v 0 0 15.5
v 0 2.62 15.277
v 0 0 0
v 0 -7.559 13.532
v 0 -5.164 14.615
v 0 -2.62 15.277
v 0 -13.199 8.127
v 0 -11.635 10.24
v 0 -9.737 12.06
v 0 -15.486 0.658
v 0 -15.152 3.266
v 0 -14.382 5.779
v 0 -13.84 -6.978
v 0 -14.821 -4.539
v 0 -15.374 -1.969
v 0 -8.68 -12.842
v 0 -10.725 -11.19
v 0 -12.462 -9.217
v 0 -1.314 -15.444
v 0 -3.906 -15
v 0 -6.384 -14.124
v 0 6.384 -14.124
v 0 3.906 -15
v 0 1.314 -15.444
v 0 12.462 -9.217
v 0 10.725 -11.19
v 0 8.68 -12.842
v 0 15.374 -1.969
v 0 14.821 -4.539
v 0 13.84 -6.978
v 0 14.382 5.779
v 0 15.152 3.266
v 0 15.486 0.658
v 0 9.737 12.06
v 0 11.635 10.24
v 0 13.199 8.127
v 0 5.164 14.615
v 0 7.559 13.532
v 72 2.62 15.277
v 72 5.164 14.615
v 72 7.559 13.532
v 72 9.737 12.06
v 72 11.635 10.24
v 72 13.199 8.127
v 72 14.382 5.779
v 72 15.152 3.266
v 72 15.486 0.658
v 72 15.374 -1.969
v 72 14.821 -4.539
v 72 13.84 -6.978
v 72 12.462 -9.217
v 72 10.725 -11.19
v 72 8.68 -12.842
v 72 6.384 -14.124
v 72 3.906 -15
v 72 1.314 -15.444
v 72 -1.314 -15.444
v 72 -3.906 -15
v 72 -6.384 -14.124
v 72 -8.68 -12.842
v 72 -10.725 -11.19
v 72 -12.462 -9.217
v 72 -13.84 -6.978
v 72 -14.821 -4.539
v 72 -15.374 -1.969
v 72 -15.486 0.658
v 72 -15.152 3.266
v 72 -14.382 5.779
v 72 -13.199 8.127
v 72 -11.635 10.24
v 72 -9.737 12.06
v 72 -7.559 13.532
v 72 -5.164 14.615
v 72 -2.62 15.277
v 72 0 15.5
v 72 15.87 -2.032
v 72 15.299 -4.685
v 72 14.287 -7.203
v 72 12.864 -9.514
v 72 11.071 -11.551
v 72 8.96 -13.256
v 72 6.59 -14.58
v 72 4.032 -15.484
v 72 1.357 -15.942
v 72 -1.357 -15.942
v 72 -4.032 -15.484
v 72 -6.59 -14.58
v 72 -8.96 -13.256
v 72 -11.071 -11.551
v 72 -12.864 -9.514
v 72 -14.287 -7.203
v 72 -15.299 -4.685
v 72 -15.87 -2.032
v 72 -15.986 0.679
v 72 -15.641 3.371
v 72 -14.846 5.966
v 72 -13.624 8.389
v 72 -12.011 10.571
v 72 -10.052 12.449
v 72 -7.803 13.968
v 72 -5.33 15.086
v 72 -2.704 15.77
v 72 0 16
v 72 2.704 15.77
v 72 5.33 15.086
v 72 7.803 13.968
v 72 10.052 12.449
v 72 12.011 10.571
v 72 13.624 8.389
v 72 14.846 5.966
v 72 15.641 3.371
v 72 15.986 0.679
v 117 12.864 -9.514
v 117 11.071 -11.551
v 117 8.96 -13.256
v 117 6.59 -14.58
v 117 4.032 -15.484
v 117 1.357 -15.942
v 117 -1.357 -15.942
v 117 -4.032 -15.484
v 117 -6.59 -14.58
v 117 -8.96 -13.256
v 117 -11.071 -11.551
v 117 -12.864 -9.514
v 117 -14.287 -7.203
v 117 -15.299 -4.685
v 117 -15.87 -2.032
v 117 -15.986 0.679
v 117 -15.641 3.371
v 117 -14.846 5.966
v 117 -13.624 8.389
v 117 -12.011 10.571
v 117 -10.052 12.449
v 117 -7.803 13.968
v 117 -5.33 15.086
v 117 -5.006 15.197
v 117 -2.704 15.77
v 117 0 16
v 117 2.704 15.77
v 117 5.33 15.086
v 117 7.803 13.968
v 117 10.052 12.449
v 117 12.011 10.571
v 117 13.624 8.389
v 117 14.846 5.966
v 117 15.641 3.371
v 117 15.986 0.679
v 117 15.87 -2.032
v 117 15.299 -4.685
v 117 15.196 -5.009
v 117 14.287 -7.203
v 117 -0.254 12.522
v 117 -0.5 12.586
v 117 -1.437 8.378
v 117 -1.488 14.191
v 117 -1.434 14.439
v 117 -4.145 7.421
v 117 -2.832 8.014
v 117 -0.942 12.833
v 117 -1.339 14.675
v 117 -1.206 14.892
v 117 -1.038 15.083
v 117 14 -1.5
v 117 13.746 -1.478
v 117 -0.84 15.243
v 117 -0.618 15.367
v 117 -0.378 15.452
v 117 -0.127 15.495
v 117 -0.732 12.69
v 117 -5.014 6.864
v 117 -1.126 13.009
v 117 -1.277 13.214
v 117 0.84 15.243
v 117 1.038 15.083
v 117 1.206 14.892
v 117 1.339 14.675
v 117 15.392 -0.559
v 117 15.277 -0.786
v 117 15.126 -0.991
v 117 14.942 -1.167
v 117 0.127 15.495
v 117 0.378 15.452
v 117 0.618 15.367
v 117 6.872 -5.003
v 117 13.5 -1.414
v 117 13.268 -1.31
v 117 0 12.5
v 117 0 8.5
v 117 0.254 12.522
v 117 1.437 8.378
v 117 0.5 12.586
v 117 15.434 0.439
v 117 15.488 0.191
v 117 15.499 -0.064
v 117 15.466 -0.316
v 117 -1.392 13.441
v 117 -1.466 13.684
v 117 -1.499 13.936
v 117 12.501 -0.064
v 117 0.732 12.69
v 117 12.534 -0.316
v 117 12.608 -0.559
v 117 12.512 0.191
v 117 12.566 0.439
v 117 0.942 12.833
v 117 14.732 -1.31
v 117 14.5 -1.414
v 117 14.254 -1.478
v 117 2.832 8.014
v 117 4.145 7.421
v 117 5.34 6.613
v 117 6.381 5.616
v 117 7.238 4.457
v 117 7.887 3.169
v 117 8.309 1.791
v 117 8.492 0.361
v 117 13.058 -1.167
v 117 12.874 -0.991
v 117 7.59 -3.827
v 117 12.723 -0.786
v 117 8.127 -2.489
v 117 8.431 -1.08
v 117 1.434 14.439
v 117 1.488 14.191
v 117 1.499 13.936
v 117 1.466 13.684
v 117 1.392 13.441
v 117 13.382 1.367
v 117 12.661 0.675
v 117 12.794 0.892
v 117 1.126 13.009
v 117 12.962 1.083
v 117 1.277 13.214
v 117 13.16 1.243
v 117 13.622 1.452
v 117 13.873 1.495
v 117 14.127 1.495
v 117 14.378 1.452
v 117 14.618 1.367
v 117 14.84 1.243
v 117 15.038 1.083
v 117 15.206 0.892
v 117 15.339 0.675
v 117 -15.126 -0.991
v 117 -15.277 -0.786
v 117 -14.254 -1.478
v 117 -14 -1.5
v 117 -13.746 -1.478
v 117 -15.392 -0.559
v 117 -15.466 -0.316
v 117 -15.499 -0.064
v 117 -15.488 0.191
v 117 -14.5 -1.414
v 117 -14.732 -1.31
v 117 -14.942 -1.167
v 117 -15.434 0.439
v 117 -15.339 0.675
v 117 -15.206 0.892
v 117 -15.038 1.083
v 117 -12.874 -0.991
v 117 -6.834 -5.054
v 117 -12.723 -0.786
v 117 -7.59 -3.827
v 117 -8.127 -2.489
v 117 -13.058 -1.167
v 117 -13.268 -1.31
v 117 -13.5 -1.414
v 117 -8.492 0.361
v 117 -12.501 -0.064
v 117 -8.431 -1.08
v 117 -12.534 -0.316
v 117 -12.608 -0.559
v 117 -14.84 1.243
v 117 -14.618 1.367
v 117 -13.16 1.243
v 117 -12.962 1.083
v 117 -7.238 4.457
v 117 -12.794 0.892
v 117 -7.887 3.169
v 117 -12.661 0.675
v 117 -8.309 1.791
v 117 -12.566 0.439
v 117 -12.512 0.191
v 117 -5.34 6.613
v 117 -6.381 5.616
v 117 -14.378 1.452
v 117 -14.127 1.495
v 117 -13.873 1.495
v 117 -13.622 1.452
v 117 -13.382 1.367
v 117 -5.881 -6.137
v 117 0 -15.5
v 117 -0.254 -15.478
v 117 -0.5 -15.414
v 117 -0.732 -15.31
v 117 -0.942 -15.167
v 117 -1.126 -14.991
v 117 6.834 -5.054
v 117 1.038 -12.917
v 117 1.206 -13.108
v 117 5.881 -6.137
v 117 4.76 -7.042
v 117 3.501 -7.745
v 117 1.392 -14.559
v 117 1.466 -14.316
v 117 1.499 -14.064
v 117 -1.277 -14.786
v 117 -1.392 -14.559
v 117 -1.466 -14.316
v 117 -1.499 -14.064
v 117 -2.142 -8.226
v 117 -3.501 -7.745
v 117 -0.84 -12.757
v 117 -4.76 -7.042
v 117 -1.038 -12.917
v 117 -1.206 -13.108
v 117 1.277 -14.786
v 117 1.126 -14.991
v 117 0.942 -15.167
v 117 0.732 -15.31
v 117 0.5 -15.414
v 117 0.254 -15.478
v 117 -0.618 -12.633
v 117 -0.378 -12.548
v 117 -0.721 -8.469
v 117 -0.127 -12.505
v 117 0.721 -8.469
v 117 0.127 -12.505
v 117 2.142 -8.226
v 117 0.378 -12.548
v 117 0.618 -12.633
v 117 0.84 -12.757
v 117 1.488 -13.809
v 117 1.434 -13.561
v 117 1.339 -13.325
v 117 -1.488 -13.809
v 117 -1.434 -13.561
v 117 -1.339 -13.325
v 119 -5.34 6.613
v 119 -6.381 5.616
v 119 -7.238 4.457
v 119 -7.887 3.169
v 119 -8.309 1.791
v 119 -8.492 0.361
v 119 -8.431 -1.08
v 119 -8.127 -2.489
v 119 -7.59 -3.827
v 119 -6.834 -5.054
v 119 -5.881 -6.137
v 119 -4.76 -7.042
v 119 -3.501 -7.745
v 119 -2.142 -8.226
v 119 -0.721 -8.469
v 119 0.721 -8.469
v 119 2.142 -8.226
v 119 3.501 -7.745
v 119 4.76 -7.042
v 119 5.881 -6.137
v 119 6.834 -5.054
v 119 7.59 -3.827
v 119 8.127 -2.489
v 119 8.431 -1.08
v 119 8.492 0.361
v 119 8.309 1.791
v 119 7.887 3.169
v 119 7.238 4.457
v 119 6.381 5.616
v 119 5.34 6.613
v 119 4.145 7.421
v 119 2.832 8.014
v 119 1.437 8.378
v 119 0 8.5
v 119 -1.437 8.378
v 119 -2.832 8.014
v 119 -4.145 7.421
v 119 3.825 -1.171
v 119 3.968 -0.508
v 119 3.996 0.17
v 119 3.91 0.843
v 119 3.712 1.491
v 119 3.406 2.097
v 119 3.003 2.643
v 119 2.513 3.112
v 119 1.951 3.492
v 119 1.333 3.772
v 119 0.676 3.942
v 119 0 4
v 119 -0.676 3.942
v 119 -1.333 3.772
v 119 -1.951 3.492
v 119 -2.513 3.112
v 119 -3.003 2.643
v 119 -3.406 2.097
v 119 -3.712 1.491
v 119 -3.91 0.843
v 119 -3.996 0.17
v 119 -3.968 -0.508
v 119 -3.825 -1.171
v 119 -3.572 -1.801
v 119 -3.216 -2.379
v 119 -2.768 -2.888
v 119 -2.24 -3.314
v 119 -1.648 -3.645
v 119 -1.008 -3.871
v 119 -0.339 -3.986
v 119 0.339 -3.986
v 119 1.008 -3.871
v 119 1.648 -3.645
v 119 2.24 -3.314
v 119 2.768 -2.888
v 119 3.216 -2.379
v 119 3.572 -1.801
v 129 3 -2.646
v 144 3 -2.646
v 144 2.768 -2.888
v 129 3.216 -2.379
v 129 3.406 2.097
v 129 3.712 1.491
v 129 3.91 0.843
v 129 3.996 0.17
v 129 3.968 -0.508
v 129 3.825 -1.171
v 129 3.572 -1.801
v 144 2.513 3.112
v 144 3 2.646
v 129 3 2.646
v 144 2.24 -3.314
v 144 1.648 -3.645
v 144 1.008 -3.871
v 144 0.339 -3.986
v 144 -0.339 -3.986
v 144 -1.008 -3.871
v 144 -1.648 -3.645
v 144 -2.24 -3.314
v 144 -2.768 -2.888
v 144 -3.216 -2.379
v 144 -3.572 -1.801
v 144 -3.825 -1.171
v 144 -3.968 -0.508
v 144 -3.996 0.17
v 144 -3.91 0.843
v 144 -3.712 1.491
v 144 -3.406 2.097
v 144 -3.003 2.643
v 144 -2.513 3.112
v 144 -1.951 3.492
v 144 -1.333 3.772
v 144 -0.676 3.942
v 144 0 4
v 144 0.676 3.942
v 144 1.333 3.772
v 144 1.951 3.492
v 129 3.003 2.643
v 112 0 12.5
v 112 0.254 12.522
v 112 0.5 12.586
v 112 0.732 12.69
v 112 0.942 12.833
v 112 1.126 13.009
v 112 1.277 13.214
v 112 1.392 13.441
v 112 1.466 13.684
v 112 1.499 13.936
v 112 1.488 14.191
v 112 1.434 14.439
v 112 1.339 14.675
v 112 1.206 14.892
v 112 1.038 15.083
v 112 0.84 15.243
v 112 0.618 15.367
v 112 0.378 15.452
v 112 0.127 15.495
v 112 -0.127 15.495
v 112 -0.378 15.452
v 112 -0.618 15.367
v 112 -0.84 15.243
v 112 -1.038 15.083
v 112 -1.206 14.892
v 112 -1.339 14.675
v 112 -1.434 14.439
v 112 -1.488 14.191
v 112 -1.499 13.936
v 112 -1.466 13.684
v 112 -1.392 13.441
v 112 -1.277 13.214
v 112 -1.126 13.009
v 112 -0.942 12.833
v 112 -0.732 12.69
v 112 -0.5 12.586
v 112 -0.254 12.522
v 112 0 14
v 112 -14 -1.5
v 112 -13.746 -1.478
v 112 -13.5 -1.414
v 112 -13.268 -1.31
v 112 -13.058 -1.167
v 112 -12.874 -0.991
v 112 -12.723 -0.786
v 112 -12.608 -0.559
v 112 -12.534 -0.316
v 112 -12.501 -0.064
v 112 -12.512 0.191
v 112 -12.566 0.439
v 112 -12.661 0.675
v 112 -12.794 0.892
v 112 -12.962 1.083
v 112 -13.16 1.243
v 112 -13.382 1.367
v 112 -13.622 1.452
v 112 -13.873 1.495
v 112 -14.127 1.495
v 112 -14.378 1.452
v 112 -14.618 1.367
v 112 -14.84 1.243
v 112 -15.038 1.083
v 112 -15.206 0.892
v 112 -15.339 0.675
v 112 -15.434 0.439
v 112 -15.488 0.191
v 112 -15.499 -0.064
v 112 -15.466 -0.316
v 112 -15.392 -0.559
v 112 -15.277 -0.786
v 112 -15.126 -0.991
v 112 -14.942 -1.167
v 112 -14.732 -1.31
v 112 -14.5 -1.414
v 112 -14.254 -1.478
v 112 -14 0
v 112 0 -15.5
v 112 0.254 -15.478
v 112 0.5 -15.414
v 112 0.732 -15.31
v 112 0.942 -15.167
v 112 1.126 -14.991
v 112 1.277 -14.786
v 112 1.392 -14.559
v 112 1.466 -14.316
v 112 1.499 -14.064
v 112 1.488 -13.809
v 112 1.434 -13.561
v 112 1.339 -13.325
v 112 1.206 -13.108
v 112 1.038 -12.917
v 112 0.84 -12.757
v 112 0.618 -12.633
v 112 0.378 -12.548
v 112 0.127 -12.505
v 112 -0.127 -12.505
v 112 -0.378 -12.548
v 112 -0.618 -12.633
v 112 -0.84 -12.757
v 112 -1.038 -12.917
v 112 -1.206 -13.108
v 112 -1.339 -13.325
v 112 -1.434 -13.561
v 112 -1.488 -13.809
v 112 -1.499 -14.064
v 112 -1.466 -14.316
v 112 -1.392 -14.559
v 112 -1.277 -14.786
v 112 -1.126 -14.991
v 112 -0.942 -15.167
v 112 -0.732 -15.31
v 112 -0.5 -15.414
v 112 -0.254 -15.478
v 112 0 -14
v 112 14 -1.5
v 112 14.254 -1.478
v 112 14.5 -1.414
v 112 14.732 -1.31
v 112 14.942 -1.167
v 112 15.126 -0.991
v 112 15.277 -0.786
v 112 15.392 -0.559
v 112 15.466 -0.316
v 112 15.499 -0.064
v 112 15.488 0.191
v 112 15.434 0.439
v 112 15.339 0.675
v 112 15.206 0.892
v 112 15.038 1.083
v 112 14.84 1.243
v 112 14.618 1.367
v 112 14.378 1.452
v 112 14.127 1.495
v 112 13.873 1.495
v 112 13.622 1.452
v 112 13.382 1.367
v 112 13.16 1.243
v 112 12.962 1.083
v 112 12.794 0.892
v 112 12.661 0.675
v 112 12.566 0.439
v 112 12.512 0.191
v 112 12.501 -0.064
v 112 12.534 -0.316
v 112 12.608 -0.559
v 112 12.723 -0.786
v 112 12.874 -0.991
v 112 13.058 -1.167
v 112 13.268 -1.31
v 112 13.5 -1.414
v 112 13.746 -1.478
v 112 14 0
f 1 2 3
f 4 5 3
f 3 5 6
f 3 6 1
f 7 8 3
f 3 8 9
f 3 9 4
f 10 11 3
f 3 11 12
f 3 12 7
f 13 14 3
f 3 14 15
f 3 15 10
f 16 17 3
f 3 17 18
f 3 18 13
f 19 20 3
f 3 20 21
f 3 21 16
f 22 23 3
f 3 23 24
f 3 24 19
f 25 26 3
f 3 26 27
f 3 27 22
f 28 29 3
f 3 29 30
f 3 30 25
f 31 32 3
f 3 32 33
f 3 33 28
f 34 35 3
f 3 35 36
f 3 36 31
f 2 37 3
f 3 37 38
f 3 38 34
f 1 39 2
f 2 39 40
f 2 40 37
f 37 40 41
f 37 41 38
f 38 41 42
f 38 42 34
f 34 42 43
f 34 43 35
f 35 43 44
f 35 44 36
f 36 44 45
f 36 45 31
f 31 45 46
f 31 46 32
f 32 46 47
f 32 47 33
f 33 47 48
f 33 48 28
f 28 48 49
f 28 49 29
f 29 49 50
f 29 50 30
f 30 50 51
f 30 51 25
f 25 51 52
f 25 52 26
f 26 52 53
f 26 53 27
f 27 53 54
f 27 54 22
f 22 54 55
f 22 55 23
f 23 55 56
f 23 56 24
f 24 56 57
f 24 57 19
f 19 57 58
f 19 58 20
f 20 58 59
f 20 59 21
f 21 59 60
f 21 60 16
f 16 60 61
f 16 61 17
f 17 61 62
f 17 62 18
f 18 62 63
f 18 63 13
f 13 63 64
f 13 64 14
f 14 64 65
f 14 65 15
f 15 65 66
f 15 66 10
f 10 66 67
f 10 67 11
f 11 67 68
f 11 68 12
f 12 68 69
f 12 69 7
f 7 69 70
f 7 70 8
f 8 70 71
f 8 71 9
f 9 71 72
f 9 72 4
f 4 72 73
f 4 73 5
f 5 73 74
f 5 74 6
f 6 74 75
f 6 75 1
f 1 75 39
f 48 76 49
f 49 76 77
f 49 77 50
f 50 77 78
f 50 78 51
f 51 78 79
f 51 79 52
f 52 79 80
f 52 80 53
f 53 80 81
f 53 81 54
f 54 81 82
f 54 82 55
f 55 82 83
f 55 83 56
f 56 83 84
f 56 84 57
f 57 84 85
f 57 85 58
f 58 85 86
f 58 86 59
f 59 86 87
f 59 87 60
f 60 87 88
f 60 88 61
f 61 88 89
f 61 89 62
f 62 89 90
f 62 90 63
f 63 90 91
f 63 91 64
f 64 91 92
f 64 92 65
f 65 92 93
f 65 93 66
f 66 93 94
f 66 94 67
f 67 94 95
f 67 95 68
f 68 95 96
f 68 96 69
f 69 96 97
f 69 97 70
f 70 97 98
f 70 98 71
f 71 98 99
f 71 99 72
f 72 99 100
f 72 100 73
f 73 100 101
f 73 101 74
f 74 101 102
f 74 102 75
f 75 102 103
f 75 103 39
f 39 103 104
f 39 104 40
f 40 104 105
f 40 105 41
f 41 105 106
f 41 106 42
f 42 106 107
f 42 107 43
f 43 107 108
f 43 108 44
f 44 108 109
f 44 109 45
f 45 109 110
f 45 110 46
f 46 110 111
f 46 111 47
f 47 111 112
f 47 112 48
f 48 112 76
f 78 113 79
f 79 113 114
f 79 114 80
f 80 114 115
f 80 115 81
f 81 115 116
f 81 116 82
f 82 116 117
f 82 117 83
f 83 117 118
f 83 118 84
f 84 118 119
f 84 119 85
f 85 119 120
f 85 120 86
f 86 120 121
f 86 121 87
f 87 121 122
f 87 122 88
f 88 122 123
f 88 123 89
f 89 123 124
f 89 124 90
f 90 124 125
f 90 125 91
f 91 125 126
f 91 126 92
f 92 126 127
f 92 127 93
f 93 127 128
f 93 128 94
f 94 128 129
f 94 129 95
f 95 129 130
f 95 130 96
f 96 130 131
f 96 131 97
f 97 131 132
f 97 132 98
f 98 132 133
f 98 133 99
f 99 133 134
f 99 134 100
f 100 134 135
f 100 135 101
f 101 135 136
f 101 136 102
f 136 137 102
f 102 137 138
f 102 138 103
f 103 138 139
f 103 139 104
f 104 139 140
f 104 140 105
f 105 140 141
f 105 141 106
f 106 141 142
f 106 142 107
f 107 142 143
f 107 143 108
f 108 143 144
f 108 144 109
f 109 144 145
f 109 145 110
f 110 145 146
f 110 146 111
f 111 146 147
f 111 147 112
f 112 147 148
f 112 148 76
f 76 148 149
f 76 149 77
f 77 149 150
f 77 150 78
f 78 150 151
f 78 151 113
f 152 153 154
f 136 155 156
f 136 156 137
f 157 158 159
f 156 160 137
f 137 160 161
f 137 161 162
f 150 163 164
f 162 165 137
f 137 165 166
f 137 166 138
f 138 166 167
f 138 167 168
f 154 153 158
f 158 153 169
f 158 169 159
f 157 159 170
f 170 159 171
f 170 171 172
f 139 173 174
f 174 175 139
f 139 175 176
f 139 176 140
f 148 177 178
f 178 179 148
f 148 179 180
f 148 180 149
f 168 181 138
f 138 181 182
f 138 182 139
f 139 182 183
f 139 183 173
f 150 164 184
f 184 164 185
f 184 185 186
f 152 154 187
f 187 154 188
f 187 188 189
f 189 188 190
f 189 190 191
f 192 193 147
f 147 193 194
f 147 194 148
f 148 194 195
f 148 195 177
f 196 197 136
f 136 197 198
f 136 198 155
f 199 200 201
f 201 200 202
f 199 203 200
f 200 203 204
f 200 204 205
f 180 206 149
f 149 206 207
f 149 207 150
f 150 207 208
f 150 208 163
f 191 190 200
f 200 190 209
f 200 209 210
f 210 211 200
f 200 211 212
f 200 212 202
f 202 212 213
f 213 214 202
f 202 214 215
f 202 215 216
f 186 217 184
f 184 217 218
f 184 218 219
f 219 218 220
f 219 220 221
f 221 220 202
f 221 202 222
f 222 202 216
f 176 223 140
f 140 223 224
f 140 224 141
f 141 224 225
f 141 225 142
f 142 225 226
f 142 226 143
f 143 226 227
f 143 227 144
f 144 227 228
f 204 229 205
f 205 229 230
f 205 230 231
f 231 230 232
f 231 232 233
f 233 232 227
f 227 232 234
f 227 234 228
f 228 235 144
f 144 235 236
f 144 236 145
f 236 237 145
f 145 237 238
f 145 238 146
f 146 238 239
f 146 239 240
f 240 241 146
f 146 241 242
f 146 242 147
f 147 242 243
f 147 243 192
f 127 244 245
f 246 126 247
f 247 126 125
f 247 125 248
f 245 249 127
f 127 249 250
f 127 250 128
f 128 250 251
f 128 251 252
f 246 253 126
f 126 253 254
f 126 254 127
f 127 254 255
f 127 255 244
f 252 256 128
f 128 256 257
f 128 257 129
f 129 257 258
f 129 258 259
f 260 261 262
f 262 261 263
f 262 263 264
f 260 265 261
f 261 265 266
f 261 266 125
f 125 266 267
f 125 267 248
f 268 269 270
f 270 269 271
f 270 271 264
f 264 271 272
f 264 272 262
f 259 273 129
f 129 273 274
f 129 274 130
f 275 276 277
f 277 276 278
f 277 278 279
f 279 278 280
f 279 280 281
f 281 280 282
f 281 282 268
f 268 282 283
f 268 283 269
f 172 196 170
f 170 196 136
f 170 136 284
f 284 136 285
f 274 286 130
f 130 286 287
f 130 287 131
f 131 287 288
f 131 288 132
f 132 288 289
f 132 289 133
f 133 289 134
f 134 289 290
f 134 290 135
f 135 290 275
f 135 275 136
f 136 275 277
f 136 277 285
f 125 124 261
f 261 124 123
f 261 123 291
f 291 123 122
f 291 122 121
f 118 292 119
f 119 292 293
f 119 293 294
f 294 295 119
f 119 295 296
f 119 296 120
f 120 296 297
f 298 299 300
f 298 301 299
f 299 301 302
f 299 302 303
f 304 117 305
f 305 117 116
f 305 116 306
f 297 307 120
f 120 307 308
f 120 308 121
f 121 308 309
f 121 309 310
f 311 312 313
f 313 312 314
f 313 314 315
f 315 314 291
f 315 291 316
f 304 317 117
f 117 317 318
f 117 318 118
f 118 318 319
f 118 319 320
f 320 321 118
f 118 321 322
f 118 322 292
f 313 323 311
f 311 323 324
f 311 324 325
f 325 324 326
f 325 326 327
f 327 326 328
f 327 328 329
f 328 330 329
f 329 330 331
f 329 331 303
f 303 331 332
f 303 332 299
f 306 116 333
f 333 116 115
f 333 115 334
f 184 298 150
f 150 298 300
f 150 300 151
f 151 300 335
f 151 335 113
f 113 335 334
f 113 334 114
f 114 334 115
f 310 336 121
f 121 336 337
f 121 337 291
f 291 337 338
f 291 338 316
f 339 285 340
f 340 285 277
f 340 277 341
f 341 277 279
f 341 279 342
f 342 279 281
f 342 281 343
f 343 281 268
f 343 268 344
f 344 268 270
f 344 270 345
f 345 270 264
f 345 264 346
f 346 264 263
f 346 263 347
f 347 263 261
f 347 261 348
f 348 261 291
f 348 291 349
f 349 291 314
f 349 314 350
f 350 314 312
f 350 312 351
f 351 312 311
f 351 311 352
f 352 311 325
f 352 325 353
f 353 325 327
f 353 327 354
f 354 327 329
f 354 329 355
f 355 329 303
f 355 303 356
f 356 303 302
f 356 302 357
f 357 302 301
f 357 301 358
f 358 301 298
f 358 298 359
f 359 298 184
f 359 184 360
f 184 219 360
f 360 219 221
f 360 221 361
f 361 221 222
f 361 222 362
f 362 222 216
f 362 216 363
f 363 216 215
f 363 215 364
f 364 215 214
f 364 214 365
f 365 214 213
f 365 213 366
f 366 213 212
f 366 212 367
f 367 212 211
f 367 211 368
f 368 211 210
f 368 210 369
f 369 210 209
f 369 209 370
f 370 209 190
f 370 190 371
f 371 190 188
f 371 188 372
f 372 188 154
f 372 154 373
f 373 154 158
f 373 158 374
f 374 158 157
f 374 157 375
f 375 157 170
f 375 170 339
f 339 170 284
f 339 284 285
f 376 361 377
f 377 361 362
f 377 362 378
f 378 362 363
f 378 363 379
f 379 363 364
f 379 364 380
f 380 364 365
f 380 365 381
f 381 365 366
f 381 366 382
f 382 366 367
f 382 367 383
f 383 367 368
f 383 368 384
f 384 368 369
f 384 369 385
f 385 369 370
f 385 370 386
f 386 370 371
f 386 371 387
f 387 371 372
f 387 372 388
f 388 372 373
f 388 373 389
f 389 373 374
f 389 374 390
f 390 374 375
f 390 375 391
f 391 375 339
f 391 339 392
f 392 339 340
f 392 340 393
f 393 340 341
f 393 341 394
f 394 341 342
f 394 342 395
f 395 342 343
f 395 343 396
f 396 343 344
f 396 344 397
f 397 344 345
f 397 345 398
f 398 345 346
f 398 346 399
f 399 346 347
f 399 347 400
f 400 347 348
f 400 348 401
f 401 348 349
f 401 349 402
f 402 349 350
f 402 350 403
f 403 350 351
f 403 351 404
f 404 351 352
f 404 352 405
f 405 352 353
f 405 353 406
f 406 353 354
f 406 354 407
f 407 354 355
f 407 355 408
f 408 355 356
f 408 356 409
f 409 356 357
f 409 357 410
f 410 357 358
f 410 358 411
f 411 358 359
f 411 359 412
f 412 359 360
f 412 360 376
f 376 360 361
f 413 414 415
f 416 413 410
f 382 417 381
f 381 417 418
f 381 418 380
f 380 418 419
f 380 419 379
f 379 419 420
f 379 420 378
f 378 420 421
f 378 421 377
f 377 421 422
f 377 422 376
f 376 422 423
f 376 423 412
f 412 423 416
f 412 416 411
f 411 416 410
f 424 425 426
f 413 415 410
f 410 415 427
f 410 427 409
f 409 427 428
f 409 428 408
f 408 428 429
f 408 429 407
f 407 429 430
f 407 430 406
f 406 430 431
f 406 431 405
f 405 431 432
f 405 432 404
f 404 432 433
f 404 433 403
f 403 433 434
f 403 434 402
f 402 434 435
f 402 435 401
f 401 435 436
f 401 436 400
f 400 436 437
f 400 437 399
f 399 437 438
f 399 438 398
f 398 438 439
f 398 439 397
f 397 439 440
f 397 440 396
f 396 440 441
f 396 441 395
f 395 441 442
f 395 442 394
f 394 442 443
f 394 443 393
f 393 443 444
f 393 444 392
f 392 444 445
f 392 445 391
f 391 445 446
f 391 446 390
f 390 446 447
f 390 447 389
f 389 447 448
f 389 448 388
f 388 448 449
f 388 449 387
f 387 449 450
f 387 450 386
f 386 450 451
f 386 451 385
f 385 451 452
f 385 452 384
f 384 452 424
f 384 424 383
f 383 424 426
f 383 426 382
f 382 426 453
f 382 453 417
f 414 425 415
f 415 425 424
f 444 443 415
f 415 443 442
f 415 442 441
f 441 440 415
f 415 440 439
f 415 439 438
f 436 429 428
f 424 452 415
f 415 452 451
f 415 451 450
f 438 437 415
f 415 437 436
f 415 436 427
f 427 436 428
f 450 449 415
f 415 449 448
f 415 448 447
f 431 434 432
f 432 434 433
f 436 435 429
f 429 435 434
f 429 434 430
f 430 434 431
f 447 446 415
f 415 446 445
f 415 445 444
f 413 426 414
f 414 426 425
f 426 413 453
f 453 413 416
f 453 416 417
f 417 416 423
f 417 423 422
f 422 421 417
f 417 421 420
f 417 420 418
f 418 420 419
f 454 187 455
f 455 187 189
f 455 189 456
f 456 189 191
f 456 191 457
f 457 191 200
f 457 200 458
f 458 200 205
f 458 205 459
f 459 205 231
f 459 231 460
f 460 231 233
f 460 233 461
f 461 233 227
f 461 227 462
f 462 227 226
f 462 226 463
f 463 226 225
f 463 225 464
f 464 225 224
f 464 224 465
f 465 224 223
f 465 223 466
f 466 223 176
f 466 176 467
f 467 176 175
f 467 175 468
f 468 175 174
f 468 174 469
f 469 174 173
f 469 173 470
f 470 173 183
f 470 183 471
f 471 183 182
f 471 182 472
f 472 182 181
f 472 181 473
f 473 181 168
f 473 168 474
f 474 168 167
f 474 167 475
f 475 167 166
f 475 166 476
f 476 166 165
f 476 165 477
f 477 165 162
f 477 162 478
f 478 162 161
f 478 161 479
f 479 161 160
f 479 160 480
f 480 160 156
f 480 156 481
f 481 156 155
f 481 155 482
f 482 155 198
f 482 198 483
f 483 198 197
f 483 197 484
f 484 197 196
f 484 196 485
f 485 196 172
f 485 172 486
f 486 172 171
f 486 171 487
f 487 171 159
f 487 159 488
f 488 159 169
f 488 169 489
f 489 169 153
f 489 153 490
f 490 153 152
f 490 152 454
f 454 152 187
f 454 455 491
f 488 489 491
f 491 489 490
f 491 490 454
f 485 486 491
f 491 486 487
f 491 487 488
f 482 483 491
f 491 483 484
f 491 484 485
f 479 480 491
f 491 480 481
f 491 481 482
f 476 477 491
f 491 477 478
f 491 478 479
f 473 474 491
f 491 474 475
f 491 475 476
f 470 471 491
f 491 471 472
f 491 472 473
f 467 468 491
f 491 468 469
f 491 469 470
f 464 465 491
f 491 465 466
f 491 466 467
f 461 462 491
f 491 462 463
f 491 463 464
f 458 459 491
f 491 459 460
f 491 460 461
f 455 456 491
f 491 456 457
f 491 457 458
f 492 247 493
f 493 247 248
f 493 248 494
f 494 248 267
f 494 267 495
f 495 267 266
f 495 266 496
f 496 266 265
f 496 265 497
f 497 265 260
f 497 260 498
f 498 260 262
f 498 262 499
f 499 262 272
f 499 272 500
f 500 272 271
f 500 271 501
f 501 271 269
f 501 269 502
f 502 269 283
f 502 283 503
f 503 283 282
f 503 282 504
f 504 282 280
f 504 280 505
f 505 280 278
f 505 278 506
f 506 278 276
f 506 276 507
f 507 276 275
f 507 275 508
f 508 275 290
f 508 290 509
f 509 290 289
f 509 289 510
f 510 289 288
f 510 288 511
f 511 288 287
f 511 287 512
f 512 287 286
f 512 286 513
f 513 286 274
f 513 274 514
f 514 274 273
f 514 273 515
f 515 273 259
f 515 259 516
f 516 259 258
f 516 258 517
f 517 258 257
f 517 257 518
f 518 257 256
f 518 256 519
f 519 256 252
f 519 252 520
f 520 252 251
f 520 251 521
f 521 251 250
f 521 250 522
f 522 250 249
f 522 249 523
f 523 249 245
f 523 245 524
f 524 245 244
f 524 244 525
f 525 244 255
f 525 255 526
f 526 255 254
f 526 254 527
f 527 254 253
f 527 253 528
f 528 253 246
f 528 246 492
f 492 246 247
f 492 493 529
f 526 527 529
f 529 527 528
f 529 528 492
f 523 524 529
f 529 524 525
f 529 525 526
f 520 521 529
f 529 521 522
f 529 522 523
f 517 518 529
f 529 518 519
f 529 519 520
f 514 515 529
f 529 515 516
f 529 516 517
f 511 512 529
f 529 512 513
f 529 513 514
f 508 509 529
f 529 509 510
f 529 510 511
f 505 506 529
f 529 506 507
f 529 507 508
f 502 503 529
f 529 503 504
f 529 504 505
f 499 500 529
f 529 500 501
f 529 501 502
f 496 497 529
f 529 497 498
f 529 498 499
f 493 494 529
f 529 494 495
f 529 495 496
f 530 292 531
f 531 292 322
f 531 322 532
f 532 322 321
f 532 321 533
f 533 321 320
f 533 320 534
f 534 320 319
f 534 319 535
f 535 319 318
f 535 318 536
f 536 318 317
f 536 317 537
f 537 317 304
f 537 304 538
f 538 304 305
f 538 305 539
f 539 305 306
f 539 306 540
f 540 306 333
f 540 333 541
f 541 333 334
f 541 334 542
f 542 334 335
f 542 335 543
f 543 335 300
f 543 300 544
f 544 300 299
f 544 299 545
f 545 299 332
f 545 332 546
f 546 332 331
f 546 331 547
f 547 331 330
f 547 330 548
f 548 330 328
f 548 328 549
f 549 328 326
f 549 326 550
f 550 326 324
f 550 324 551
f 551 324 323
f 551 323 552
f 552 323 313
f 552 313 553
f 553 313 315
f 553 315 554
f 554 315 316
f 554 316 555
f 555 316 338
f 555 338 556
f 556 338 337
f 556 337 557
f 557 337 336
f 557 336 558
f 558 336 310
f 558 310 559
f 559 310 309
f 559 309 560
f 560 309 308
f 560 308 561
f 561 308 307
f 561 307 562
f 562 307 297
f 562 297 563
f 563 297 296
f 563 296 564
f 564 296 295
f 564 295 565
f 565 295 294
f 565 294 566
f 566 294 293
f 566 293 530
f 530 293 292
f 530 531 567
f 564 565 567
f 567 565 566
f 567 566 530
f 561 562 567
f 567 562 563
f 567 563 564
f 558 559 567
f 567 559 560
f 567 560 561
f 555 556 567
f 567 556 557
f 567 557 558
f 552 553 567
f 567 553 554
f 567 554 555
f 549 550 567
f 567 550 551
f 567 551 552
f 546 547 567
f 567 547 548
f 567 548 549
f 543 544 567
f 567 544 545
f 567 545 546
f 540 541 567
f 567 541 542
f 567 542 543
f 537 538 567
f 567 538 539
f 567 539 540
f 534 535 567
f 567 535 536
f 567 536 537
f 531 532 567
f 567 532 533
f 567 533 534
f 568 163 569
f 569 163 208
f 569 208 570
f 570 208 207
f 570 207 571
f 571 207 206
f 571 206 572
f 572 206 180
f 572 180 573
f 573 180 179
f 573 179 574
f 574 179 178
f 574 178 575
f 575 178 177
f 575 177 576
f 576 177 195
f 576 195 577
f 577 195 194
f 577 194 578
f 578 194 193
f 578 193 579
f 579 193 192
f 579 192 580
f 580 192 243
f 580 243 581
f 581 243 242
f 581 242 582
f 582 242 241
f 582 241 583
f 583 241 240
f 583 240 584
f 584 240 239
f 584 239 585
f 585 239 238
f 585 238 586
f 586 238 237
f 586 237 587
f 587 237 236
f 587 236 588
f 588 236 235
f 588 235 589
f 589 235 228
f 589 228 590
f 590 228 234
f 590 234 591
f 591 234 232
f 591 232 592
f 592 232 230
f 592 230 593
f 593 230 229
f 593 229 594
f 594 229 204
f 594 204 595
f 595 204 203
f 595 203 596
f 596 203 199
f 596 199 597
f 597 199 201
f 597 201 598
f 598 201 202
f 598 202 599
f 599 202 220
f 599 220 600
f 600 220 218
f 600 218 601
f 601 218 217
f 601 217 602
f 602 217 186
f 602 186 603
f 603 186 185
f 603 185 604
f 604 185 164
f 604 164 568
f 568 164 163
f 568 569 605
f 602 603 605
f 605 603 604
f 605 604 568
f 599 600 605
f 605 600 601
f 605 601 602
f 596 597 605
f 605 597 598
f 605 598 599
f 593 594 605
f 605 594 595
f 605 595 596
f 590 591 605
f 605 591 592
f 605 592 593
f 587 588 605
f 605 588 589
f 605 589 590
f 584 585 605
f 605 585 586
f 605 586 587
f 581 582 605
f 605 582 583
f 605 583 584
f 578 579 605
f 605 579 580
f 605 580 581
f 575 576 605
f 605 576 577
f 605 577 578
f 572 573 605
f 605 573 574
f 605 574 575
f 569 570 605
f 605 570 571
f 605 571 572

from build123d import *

# Parameters (mm, degrees)
CUT_EXTRUDE1_DEPTH = 15
SKETCH3_R          = 1.5
CUT_EXTRUDE2_DEPTH = 5


with BuildPart() as part:
    # Sketch1 → Revolve1 (revolve)
    with BuildSketch(Plane.XY, mode=Mode.PRIVATE) as revolve1_sk:
        Polygon((0, 0), (0, 15.5), (72, 15.5), (72, 16), (117, 16), (117, 8.5), (119, 8.5), (119, 4), (144, 4), (144, 0), align=None)
    revolve(revolve1_sk.sketch.rotate(Axis((0, 0, 0), (1, 0, 0)), 90), axis=Axis((0, 0, 0), (1, 0, 0)))

    # Sketch2 → Cut-Extrude1 (cut)
    with BuildSketch(Plane(origin=(144, 0, 0), x_dir=(0, 0, -1), z_dir=(1, 0, 0))):
        with BuildLine():
            Line((-2.645751311, 3), (2.645751311, 3))
            ThreePointArc((2.645751311, 3), (0, 4), (-2.645751311, 3))
        make_face()
    extrude(amount=-CUT_EXTRUDE1_DEPTH, mode=Mode.SUBTRACT)

    # Sketch3 → Cut-Extrude2 (cut)
    with BuildSketch(Plane(origin=(117, 0, 0), x_dir=(0, 0, -1), z_dir=(1, 0, 0))):
        with Locations((0, 14)):
            Circle(SKETCH3_R)
        with Locations((14, 0)):
            Circle(SKETCH3_R)
        with Locations((0, -14)):
            Circle(SKETCH3_R)
        with Locations((-14, 0)):
            Circle(SKETCH3_R)
    extrude(amount=-CUT_EXTRUDE2_DEPTH, mode=Mode.SUBTRACT)


solid = part.part
